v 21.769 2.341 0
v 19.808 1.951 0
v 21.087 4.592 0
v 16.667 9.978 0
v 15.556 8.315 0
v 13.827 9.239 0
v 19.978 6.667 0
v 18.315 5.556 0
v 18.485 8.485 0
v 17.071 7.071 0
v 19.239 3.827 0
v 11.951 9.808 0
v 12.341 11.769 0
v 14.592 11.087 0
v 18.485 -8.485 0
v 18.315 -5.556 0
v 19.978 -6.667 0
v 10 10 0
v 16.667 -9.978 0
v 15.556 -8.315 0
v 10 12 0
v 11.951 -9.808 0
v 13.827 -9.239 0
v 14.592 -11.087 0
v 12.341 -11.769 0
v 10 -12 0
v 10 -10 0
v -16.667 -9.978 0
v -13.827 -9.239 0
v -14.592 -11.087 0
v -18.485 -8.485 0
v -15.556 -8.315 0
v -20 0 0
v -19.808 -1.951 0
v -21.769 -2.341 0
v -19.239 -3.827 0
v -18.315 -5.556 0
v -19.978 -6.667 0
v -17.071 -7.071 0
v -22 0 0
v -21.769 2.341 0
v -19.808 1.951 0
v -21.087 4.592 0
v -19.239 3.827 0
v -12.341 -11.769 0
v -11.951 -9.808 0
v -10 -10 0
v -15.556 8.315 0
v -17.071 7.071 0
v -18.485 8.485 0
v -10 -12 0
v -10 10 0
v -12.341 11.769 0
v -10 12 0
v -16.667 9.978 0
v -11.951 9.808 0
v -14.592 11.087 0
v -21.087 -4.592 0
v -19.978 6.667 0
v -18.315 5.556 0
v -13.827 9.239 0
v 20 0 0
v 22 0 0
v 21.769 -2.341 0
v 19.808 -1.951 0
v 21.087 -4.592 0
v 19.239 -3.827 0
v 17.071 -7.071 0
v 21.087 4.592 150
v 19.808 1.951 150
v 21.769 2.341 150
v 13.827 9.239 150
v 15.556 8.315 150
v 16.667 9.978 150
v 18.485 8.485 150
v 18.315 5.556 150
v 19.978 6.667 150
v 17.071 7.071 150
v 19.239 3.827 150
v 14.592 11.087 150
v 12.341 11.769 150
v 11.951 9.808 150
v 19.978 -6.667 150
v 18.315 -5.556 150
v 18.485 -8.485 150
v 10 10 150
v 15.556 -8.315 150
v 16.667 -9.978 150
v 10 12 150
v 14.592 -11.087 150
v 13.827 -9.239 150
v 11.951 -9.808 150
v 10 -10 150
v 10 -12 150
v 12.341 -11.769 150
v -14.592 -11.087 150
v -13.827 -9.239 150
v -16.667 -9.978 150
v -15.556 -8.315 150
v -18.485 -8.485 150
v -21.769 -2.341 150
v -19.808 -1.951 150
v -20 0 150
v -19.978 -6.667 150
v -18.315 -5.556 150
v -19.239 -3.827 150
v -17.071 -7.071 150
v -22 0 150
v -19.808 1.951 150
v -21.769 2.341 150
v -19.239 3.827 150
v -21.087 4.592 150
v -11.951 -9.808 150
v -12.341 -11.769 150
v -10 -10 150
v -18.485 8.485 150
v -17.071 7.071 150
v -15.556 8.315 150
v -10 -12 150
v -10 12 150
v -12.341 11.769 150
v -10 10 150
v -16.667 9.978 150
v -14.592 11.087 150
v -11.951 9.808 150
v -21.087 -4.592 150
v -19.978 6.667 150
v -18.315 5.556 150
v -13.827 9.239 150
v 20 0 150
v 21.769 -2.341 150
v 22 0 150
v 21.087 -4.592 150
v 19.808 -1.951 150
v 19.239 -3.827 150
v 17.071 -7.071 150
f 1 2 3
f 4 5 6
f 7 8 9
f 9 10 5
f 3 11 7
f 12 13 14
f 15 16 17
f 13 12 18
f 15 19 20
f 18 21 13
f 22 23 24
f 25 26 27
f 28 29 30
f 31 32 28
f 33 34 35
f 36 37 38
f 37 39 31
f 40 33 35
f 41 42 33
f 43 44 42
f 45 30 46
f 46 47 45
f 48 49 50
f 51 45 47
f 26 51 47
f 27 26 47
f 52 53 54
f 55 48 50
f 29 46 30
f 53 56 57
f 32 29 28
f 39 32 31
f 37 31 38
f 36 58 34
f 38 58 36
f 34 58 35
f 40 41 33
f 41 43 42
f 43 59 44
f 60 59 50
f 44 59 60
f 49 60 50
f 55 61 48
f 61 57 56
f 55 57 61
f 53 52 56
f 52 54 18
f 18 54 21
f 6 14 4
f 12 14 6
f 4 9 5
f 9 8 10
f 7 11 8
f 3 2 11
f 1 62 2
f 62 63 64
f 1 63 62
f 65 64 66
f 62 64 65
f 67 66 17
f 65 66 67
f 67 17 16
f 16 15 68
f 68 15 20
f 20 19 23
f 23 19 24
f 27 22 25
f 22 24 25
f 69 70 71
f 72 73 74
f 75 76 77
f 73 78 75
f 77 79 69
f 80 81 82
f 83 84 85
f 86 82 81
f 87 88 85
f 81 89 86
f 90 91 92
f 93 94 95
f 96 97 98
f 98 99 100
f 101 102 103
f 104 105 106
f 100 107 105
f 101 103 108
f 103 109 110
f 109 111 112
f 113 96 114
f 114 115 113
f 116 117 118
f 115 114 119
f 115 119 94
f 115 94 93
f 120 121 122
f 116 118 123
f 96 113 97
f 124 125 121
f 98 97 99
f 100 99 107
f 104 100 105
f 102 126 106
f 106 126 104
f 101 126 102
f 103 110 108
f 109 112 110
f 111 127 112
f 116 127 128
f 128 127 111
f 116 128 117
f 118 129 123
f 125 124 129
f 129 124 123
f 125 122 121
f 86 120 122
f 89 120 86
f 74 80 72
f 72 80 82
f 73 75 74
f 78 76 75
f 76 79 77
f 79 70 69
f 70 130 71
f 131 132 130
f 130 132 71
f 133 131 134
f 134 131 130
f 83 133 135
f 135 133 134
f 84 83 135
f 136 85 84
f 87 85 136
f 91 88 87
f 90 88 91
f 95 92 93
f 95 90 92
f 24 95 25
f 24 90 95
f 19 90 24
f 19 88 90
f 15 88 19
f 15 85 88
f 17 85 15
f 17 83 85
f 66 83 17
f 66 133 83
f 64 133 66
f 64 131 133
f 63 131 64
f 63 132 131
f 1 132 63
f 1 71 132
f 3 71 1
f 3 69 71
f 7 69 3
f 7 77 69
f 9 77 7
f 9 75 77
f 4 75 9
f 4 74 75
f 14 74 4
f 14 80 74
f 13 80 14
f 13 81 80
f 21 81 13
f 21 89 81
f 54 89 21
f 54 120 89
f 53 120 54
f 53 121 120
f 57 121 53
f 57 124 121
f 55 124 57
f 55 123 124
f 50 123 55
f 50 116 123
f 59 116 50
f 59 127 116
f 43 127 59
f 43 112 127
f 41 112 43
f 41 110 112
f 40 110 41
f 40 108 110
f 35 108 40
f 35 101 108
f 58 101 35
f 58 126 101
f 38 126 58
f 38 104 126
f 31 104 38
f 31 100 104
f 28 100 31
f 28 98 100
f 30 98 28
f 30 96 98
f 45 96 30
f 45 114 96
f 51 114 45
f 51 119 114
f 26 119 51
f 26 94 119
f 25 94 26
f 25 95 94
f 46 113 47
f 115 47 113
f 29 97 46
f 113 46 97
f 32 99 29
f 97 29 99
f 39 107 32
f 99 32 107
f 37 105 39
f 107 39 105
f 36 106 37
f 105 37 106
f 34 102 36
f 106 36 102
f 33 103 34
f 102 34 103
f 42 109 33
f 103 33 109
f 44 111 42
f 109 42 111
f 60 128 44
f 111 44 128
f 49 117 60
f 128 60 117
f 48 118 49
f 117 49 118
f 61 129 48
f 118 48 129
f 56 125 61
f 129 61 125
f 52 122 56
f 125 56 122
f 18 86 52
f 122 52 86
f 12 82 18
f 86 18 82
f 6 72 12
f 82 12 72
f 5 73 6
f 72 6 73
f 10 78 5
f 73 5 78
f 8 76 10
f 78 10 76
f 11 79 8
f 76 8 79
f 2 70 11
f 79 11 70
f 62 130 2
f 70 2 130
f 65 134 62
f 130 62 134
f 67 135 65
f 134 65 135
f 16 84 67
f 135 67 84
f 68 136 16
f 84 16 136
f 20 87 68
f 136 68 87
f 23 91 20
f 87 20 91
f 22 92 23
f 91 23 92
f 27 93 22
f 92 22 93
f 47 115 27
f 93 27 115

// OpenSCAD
//use <../settings.scad>

$fn = $preview ? 32: 32;

r_inner=10;
oval_width=20;
r_thickness=2;
height=10;
r_fillet=2;

module outline(){
    hull(){
        translate([oval_width/2,0,0])circle(r=r_inner);
        translate([-oval_width/2,0,0])circle(r=r_inner);
    }
}

module outer() {
    minkowski(){
        outline();
        circle(r=r_thickness);
    }
}

module hollow(){
    difference(){
        outer();
        outline();
    }
}


module hollow_and_extruded(height){
    linear_extrude(height){
        hollow();
    }
}
module add_fillet(height, should_add){
    if (should_add) {
        minkowski(){
            hollow_and_extruded(height);
            sphere(r=r_fillet);
        }  
    } else {
            hollow_and_extruded(height);
    }
        
}


union(){
//    translate([0,0,140])add_fillet(10, true);
//    translate([0,0,5])add_fillet(140, false);
  //  add_fillet(10, true);
}

module rim(){
    minkowski(){

        linear_extrude(1)hollow();
        sphere(r=r_fillet);
    }
}

//translate([0,0,142.9])rim();
//translate([0,0,2.99])add_fillet(140, false);
//rim();

add_fillet(150, false);
